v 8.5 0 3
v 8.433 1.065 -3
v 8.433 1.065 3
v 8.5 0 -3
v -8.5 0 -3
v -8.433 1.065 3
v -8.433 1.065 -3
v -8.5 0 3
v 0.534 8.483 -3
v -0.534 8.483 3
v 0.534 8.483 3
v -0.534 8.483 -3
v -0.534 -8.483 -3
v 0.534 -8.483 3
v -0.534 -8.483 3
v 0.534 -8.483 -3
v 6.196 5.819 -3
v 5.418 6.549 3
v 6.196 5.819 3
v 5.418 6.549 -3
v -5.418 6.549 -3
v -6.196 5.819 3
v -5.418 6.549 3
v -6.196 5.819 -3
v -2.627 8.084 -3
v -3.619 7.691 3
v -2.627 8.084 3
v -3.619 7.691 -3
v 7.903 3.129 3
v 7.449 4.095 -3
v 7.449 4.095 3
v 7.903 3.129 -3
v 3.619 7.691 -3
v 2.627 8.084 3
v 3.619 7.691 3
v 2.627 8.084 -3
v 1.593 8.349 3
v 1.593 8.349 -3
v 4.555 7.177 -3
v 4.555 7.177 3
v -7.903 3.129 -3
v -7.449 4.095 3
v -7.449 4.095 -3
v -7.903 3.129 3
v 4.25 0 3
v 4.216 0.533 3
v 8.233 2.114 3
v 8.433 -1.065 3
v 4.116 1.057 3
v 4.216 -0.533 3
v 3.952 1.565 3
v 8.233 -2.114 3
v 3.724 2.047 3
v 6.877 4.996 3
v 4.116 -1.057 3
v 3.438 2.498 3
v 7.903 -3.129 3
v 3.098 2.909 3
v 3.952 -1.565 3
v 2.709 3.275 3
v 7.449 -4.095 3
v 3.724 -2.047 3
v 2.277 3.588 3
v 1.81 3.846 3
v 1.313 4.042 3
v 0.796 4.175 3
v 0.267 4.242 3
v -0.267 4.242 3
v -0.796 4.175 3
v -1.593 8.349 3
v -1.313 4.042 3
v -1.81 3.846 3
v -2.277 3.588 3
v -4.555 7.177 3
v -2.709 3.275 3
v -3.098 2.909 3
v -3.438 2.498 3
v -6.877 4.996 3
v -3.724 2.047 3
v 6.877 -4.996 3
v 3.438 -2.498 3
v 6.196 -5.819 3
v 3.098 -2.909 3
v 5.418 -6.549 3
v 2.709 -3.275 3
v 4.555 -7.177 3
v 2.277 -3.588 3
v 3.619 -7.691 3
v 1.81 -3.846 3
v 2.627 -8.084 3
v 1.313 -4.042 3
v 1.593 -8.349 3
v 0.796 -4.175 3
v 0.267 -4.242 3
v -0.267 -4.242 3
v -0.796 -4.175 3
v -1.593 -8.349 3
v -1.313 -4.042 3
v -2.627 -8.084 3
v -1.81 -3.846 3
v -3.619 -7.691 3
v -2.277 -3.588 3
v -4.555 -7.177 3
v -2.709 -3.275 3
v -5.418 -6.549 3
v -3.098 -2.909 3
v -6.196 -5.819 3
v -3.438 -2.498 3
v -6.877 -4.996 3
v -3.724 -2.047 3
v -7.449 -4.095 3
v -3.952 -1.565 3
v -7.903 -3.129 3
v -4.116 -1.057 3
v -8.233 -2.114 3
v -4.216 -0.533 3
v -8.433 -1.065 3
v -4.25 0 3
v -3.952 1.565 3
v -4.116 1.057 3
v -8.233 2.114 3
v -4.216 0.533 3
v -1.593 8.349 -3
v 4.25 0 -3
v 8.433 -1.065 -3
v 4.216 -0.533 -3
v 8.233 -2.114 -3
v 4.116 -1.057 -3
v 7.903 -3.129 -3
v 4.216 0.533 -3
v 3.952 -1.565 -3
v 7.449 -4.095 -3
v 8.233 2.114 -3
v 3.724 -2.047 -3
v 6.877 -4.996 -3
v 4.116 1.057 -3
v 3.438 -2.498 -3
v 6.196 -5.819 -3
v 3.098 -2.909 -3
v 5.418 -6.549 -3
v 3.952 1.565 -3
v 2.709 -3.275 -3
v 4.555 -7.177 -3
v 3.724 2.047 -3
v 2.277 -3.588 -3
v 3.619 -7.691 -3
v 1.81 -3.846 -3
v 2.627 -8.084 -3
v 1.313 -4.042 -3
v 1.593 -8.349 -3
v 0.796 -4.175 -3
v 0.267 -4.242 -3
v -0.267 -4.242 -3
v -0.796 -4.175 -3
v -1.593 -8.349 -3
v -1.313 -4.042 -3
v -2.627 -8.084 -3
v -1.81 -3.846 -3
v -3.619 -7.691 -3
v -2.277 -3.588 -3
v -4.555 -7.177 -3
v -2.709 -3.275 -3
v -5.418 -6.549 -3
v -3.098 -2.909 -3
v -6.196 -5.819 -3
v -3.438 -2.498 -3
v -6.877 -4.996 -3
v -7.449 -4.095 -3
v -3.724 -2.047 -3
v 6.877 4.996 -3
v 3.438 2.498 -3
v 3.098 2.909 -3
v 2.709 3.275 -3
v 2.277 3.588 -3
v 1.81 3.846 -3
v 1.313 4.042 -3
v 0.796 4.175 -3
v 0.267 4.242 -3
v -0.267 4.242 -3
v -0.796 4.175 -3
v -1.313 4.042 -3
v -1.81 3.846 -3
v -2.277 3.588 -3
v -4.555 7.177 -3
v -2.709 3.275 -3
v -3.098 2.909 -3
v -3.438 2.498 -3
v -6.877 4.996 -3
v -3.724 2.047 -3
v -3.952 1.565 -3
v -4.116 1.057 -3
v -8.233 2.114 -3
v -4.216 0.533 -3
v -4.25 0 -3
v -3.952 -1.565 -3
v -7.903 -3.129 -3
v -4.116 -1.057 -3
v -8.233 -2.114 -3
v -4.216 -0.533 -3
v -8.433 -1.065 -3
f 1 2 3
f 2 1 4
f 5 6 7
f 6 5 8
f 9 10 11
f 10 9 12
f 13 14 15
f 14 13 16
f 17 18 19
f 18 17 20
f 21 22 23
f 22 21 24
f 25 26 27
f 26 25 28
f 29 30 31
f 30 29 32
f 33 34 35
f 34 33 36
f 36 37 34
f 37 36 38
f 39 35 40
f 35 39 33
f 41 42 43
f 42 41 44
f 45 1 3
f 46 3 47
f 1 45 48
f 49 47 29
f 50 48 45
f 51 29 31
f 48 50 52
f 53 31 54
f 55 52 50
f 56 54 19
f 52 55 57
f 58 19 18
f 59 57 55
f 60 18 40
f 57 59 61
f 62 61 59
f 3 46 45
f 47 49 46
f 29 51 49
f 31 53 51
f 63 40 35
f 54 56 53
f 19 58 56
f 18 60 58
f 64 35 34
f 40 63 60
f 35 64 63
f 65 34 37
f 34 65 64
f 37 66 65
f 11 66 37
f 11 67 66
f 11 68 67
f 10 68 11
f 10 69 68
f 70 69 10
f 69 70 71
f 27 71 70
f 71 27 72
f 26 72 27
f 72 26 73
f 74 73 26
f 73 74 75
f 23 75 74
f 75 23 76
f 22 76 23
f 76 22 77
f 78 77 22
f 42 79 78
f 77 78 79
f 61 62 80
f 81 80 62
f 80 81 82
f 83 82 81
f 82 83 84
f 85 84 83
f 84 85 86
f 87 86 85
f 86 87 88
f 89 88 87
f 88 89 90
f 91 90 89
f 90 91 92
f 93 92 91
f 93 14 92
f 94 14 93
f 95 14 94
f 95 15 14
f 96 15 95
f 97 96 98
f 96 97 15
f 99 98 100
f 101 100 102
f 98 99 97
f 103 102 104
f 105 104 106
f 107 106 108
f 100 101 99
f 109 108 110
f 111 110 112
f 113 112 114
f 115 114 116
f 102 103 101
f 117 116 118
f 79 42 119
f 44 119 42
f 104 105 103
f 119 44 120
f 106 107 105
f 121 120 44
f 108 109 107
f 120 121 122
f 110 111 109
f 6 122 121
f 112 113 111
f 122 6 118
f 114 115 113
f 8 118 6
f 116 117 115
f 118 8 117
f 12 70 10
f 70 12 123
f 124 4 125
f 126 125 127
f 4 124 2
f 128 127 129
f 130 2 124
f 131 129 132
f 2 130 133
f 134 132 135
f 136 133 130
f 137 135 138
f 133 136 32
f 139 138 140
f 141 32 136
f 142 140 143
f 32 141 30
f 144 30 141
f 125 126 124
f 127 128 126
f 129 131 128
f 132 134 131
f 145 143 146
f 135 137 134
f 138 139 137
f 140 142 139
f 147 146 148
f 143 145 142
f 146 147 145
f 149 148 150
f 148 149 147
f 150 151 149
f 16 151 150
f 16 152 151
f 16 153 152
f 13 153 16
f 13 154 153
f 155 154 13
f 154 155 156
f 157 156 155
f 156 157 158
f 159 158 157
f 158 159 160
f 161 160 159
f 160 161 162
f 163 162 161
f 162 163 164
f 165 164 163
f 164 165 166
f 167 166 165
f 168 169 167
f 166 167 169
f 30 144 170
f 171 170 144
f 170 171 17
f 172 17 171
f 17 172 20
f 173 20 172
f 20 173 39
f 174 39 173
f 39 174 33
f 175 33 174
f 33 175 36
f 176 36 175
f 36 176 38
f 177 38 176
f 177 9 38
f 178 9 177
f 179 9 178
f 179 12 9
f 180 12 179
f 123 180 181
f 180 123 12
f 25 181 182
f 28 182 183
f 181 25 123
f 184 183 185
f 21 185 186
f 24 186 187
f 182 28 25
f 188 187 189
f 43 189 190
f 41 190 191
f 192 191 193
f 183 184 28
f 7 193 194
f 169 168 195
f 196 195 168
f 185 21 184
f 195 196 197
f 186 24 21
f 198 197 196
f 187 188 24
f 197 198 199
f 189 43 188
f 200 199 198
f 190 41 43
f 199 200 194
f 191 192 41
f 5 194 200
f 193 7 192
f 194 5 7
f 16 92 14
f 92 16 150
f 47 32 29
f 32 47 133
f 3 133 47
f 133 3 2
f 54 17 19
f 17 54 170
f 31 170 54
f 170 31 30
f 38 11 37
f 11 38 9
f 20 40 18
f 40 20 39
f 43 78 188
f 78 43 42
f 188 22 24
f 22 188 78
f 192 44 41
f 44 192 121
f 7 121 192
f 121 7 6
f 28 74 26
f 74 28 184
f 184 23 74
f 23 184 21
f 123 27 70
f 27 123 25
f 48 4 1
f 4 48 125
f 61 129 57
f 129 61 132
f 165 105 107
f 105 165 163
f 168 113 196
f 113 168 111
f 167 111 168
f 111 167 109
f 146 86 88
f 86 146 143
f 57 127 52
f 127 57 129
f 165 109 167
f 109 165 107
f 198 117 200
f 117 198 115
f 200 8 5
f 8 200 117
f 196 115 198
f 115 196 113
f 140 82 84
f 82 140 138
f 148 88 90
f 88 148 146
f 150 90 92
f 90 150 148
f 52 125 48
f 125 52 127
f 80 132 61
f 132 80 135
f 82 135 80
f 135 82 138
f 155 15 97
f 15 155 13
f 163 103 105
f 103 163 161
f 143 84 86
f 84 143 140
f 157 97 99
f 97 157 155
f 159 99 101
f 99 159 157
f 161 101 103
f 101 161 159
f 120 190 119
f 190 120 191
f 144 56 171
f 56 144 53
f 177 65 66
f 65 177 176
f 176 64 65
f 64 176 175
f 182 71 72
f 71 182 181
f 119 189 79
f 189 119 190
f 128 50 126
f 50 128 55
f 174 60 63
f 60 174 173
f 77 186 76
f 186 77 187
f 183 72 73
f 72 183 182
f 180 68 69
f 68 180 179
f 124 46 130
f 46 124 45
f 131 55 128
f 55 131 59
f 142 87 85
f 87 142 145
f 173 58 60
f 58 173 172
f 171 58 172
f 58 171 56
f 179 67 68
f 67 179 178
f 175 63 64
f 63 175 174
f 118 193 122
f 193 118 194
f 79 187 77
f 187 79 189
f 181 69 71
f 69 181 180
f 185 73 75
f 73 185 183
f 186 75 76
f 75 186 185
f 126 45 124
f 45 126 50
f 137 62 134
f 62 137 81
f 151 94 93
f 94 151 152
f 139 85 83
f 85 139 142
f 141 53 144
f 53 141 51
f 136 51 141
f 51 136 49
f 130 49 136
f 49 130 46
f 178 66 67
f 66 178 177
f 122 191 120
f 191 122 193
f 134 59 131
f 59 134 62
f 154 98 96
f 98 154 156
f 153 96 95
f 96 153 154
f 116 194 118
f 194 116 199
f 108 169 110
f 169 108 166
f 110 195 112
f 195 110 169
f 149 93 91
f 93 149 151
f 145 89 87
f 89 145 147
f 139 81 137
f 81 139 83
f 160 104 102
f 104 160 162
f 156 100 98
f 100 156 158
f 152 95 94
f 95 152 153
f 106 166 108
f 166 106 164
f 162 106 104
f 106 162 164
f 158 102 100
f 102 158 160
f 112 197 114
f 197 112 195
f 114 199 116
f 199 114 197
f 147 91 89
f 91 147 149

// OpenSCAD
$fn = 50;


difference() {
	union() {
		translate(v = [0, 0, -3.0000000000]) {
			cylinder(h = 6, r = 8.5000000000);
		}
	}
	union() {
		translate(v = [0, 0, -100.0000000000]) {
			cylinder(h = 200, r = 4.2500000000);
		}
	}
}
